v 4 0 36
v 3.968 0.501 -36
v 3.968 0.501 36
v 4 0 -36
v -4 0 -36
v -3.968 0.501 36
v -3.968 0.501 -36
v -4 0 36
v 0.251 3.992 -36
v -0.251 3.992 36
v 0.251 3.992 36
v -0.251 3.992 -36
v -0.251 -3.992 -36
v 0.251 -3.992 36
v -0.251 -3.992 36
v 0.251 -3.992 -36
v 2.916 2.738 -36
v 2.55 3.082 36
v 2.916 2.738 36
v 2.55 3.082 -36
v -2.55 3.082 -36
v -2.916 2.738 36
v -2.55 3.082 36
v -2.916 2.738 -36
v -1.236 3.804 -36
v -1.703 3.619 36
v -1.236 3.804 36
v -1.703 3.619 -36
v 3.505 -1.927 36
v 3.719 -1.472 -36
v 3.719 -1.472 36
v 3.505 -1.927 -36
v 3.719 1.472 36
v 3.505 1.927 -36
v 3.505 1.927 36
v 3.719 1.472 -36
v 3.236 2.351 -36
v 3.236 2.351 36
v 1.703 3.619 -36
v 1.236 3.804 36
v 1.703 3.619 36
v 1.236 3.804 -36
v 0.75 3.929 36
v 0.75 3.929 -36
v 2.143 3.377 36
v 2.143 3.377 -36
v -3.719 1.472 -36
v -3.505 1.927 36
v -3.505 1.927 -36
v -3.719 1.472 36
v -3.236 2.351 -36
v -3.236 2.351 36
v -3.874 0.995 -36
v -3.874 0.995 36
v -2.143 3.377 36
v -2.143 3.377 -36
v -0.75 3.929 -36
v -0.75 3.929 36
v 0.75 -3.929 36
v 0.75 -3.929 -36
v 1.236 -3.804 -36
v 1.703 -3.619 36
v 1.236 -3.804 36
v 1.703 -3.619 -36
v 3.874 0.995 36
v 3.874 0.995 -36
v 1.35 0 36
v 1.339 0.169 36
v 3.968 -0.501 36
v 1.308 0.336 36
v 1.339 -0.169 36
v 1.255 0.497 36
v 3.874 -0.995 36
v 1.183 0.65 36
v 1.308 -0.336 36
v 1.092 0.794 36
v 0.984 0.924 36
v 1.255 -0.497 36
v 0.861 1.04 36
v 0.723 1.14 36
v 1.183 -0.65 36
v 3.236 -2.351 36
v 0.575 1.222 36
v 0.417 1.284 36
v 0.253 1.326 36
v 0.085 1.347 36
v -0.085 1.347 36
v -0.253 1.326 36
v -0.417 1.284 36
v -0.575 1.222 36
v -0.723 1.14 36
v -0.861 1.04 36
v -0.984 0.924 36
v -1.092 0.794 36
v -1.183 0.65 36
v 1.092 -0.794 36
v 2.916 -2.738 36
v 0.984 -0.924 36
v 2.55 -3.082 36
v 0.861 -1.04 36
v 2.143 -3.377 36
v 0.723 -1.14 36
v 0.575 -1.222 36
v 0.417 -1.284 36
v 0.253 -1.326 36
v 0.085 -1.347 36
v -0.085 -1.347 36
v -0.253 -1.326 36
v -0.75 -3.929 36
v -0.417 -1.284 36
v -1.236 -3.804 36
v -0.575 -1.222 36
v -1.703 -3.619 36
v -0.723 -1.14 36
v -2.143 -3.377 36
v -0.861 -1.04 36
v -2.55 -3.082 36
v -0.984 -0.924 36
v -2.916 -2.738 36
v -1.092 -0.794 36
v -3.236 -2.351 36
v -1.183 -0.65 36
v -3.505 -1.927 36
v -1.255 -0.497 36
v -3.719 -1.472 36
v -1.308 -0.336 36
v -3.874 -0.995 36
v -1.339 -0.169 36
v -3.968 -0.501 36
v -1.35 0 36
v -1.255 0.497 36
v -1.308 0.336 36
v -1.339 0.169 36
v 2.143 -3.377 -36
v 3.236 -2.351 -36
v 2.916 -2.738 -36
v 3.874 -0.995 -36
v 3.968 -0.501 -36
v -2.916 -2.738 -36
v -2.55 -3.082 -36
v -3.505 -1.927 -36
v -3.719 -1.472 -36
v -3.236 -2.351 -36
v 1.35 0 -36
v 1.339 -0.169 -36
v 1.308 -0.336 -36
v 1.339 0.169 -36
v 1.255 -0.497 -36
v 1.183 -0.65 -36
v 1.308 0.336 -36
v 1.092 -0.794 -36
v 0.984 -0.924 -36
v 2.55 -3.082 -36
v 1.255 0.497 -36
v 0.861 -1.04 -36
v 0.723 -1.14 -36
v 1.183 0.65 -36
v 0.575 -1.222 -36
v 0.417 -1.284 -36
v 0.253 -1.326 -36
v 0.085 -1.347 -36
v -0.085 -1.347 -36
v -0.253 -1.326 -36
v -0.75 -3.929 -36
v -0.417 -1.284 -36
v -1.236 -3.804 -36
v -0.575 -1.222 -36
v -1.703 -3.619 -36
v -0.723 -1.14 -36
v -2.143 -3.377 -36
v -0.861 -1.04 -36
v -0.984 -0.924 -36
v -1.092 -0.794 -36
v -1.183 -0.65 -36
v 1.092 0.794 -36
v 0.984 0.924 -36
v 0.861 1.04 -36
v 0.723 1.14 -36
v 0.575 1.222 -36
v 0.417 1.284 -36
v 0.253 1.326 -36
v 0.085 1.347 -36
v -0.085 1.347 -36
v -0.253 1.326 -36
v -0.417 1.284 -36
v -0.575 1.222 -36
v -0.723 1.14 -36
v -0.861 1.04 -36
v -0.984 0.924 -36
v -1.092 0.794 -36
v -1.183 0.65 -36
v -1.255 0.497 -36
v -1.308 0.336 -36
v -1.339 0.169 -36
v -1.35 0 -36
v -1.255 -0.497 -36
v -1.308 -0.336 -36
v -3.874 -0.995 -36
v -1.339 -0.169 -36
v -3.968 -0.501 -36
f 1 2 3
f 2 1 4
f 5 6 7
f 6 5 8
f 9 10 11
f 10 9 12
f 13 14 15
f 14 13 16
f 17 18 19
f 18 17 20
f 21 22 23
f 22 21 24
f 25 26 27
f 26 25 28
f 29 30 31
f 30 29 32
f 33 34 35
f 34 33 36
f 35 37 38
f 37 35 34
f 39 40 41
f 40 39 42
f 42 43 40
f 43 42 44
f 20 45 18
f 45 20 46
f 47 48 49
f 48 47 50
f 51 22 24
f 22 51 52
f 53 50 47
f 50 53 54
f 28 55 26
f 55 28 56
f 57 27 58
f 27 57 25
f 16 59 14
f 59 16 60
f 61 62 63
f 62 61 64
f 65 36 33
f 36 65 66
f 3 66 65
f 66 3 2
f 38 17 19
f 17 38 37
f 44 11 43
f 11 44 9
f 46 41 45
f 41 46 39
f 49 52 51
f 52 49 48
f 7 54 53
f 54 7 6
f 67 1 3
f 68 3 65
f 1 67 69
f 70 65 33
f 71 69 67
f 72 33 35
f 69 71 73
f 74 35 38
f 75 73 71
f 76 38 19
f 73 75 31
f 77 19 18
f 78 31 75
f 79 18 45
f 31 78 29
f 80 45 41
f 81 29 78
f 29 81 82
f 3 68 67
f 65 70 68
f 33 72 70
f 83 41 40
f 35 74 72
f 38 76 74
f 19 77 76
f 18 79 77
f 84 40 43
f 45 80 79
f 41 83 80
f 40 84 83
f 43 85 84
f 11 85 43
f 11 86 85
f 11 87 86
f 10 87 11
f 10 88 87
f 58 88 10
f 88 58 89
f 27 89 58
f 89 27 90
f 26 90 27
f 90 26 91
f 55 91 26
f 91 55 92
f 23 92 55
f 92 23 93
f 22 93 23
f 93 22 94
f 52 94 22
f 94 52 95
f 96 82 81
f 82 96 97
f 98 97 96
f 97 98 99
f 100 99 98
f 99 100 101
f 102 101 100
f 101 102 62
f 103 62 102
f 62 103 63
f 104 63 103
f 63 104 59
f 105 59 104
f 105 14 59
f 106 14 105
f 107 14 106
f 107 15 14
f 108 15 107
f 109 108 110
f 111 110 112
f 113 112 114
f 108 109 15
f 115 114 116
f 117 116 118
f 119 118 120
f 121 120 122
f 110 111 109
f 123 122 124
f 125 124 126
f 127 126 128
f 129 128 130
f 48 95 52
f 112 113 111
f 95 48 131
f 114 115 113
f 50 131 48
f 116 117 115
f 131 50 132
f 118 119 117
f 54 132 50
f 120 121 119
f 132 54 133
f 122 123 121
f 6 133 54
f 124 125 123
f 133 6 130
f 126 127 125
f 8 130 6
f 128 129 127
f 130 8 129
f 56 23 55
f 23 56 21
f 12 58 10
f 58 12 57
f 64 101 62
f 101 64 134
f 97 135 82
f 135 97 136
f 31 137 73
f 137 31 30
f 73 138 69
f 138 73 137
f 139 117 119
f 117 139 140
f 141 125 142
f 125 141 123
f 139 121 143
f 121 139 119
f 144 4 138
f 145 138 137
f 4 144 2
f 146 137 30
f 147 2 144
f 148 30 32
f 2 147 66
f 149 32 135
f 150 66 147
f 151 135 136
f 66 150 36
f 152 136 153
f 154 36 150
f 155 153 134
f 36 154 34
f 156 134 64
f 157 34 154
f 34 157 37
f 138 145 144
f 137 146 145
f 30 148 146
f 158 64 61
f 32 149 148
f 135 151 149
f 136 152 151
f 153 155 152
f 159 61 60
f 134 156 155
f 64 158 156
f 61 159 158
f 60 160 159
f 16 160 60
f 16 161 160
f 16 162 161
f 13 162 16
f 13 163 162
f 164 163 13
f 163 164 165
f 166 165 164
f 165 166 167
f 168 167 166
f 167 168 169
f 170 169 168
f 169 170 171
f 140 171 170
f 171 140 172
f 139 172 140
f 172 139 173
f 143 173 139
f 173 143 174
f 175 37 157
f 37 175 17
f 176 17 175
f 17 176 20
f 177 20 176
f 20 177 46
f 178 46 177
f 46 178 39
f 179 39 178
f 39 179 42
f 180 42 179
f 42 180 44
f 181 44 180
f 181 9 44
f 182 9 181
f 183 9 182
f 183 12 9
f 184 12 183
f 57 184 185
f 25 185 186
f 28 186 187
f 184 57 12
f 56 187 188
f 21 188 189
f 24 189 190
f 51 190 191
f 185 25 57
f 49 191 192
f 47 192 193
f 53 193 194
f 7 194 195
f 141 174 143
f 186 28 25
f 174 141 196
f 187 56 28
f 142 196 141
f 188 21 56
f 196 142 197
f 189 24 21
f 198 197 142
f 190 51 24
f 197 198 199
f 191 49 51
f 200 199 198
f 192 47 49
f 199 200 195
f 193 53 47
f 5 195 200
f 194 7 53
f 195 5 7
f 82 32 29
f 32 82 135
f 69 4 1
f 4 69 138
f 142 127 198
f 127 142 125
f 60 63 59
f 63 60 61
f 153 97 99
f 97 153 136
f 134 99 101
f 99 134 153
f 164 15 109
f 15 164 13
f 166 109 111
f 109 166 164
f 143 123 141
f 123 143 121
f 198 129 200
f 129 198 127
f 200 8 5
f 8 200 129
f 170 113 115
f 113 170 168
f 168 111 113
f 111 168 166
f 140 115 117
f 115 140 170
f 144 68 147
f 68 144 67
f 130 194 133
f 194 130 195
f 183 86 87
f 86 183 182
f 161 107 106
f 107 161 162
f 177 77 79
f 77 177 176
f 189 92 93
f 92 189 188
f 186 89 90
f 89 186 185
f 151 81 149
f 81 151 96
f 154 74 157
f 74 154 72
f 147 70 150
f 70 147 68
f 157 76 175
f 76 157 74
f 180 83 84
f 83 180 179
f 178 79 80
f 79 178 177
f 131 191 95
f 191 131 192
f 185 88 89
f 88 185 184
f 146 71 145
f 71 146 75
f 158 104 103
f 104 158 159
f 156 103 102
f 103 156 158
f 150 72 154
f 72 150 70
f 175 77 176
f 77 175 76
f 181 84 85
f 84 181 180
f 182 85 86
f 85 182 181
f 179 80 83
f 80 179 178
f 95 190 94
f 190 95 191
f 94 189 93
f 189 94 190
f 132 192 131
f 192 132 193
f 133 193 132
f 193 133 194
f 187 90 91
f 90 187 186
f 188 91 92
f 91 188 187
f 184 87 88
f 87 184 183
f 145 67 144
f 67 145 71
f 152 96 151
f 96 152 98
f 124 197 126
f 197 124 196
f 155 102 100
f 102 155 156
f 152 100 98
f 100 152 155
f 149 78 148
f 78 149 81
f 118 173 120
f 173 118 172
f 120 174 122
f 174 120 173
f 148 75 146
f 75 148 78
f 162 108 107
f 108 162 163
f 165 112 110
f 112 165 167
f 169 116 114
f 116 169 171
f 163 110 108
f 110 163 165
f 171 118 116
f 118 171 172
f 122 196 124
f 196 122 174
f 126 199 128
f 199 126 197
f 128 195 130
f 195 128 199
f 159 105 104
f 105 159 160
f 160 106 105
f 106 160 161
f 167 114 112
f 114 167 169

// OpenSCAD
$fn = 50;


difference() {
	union() {
		translate(v = [0, 0, -36.0000000000]) {
			cylinder(h = 72, r = 4.0000000000);
		}
	}
	union() {
		translate(v = [0, 0, -100.0000000000]) {
			cylinder(h = 200, r = 1.3500000000);
		}
	}
}
